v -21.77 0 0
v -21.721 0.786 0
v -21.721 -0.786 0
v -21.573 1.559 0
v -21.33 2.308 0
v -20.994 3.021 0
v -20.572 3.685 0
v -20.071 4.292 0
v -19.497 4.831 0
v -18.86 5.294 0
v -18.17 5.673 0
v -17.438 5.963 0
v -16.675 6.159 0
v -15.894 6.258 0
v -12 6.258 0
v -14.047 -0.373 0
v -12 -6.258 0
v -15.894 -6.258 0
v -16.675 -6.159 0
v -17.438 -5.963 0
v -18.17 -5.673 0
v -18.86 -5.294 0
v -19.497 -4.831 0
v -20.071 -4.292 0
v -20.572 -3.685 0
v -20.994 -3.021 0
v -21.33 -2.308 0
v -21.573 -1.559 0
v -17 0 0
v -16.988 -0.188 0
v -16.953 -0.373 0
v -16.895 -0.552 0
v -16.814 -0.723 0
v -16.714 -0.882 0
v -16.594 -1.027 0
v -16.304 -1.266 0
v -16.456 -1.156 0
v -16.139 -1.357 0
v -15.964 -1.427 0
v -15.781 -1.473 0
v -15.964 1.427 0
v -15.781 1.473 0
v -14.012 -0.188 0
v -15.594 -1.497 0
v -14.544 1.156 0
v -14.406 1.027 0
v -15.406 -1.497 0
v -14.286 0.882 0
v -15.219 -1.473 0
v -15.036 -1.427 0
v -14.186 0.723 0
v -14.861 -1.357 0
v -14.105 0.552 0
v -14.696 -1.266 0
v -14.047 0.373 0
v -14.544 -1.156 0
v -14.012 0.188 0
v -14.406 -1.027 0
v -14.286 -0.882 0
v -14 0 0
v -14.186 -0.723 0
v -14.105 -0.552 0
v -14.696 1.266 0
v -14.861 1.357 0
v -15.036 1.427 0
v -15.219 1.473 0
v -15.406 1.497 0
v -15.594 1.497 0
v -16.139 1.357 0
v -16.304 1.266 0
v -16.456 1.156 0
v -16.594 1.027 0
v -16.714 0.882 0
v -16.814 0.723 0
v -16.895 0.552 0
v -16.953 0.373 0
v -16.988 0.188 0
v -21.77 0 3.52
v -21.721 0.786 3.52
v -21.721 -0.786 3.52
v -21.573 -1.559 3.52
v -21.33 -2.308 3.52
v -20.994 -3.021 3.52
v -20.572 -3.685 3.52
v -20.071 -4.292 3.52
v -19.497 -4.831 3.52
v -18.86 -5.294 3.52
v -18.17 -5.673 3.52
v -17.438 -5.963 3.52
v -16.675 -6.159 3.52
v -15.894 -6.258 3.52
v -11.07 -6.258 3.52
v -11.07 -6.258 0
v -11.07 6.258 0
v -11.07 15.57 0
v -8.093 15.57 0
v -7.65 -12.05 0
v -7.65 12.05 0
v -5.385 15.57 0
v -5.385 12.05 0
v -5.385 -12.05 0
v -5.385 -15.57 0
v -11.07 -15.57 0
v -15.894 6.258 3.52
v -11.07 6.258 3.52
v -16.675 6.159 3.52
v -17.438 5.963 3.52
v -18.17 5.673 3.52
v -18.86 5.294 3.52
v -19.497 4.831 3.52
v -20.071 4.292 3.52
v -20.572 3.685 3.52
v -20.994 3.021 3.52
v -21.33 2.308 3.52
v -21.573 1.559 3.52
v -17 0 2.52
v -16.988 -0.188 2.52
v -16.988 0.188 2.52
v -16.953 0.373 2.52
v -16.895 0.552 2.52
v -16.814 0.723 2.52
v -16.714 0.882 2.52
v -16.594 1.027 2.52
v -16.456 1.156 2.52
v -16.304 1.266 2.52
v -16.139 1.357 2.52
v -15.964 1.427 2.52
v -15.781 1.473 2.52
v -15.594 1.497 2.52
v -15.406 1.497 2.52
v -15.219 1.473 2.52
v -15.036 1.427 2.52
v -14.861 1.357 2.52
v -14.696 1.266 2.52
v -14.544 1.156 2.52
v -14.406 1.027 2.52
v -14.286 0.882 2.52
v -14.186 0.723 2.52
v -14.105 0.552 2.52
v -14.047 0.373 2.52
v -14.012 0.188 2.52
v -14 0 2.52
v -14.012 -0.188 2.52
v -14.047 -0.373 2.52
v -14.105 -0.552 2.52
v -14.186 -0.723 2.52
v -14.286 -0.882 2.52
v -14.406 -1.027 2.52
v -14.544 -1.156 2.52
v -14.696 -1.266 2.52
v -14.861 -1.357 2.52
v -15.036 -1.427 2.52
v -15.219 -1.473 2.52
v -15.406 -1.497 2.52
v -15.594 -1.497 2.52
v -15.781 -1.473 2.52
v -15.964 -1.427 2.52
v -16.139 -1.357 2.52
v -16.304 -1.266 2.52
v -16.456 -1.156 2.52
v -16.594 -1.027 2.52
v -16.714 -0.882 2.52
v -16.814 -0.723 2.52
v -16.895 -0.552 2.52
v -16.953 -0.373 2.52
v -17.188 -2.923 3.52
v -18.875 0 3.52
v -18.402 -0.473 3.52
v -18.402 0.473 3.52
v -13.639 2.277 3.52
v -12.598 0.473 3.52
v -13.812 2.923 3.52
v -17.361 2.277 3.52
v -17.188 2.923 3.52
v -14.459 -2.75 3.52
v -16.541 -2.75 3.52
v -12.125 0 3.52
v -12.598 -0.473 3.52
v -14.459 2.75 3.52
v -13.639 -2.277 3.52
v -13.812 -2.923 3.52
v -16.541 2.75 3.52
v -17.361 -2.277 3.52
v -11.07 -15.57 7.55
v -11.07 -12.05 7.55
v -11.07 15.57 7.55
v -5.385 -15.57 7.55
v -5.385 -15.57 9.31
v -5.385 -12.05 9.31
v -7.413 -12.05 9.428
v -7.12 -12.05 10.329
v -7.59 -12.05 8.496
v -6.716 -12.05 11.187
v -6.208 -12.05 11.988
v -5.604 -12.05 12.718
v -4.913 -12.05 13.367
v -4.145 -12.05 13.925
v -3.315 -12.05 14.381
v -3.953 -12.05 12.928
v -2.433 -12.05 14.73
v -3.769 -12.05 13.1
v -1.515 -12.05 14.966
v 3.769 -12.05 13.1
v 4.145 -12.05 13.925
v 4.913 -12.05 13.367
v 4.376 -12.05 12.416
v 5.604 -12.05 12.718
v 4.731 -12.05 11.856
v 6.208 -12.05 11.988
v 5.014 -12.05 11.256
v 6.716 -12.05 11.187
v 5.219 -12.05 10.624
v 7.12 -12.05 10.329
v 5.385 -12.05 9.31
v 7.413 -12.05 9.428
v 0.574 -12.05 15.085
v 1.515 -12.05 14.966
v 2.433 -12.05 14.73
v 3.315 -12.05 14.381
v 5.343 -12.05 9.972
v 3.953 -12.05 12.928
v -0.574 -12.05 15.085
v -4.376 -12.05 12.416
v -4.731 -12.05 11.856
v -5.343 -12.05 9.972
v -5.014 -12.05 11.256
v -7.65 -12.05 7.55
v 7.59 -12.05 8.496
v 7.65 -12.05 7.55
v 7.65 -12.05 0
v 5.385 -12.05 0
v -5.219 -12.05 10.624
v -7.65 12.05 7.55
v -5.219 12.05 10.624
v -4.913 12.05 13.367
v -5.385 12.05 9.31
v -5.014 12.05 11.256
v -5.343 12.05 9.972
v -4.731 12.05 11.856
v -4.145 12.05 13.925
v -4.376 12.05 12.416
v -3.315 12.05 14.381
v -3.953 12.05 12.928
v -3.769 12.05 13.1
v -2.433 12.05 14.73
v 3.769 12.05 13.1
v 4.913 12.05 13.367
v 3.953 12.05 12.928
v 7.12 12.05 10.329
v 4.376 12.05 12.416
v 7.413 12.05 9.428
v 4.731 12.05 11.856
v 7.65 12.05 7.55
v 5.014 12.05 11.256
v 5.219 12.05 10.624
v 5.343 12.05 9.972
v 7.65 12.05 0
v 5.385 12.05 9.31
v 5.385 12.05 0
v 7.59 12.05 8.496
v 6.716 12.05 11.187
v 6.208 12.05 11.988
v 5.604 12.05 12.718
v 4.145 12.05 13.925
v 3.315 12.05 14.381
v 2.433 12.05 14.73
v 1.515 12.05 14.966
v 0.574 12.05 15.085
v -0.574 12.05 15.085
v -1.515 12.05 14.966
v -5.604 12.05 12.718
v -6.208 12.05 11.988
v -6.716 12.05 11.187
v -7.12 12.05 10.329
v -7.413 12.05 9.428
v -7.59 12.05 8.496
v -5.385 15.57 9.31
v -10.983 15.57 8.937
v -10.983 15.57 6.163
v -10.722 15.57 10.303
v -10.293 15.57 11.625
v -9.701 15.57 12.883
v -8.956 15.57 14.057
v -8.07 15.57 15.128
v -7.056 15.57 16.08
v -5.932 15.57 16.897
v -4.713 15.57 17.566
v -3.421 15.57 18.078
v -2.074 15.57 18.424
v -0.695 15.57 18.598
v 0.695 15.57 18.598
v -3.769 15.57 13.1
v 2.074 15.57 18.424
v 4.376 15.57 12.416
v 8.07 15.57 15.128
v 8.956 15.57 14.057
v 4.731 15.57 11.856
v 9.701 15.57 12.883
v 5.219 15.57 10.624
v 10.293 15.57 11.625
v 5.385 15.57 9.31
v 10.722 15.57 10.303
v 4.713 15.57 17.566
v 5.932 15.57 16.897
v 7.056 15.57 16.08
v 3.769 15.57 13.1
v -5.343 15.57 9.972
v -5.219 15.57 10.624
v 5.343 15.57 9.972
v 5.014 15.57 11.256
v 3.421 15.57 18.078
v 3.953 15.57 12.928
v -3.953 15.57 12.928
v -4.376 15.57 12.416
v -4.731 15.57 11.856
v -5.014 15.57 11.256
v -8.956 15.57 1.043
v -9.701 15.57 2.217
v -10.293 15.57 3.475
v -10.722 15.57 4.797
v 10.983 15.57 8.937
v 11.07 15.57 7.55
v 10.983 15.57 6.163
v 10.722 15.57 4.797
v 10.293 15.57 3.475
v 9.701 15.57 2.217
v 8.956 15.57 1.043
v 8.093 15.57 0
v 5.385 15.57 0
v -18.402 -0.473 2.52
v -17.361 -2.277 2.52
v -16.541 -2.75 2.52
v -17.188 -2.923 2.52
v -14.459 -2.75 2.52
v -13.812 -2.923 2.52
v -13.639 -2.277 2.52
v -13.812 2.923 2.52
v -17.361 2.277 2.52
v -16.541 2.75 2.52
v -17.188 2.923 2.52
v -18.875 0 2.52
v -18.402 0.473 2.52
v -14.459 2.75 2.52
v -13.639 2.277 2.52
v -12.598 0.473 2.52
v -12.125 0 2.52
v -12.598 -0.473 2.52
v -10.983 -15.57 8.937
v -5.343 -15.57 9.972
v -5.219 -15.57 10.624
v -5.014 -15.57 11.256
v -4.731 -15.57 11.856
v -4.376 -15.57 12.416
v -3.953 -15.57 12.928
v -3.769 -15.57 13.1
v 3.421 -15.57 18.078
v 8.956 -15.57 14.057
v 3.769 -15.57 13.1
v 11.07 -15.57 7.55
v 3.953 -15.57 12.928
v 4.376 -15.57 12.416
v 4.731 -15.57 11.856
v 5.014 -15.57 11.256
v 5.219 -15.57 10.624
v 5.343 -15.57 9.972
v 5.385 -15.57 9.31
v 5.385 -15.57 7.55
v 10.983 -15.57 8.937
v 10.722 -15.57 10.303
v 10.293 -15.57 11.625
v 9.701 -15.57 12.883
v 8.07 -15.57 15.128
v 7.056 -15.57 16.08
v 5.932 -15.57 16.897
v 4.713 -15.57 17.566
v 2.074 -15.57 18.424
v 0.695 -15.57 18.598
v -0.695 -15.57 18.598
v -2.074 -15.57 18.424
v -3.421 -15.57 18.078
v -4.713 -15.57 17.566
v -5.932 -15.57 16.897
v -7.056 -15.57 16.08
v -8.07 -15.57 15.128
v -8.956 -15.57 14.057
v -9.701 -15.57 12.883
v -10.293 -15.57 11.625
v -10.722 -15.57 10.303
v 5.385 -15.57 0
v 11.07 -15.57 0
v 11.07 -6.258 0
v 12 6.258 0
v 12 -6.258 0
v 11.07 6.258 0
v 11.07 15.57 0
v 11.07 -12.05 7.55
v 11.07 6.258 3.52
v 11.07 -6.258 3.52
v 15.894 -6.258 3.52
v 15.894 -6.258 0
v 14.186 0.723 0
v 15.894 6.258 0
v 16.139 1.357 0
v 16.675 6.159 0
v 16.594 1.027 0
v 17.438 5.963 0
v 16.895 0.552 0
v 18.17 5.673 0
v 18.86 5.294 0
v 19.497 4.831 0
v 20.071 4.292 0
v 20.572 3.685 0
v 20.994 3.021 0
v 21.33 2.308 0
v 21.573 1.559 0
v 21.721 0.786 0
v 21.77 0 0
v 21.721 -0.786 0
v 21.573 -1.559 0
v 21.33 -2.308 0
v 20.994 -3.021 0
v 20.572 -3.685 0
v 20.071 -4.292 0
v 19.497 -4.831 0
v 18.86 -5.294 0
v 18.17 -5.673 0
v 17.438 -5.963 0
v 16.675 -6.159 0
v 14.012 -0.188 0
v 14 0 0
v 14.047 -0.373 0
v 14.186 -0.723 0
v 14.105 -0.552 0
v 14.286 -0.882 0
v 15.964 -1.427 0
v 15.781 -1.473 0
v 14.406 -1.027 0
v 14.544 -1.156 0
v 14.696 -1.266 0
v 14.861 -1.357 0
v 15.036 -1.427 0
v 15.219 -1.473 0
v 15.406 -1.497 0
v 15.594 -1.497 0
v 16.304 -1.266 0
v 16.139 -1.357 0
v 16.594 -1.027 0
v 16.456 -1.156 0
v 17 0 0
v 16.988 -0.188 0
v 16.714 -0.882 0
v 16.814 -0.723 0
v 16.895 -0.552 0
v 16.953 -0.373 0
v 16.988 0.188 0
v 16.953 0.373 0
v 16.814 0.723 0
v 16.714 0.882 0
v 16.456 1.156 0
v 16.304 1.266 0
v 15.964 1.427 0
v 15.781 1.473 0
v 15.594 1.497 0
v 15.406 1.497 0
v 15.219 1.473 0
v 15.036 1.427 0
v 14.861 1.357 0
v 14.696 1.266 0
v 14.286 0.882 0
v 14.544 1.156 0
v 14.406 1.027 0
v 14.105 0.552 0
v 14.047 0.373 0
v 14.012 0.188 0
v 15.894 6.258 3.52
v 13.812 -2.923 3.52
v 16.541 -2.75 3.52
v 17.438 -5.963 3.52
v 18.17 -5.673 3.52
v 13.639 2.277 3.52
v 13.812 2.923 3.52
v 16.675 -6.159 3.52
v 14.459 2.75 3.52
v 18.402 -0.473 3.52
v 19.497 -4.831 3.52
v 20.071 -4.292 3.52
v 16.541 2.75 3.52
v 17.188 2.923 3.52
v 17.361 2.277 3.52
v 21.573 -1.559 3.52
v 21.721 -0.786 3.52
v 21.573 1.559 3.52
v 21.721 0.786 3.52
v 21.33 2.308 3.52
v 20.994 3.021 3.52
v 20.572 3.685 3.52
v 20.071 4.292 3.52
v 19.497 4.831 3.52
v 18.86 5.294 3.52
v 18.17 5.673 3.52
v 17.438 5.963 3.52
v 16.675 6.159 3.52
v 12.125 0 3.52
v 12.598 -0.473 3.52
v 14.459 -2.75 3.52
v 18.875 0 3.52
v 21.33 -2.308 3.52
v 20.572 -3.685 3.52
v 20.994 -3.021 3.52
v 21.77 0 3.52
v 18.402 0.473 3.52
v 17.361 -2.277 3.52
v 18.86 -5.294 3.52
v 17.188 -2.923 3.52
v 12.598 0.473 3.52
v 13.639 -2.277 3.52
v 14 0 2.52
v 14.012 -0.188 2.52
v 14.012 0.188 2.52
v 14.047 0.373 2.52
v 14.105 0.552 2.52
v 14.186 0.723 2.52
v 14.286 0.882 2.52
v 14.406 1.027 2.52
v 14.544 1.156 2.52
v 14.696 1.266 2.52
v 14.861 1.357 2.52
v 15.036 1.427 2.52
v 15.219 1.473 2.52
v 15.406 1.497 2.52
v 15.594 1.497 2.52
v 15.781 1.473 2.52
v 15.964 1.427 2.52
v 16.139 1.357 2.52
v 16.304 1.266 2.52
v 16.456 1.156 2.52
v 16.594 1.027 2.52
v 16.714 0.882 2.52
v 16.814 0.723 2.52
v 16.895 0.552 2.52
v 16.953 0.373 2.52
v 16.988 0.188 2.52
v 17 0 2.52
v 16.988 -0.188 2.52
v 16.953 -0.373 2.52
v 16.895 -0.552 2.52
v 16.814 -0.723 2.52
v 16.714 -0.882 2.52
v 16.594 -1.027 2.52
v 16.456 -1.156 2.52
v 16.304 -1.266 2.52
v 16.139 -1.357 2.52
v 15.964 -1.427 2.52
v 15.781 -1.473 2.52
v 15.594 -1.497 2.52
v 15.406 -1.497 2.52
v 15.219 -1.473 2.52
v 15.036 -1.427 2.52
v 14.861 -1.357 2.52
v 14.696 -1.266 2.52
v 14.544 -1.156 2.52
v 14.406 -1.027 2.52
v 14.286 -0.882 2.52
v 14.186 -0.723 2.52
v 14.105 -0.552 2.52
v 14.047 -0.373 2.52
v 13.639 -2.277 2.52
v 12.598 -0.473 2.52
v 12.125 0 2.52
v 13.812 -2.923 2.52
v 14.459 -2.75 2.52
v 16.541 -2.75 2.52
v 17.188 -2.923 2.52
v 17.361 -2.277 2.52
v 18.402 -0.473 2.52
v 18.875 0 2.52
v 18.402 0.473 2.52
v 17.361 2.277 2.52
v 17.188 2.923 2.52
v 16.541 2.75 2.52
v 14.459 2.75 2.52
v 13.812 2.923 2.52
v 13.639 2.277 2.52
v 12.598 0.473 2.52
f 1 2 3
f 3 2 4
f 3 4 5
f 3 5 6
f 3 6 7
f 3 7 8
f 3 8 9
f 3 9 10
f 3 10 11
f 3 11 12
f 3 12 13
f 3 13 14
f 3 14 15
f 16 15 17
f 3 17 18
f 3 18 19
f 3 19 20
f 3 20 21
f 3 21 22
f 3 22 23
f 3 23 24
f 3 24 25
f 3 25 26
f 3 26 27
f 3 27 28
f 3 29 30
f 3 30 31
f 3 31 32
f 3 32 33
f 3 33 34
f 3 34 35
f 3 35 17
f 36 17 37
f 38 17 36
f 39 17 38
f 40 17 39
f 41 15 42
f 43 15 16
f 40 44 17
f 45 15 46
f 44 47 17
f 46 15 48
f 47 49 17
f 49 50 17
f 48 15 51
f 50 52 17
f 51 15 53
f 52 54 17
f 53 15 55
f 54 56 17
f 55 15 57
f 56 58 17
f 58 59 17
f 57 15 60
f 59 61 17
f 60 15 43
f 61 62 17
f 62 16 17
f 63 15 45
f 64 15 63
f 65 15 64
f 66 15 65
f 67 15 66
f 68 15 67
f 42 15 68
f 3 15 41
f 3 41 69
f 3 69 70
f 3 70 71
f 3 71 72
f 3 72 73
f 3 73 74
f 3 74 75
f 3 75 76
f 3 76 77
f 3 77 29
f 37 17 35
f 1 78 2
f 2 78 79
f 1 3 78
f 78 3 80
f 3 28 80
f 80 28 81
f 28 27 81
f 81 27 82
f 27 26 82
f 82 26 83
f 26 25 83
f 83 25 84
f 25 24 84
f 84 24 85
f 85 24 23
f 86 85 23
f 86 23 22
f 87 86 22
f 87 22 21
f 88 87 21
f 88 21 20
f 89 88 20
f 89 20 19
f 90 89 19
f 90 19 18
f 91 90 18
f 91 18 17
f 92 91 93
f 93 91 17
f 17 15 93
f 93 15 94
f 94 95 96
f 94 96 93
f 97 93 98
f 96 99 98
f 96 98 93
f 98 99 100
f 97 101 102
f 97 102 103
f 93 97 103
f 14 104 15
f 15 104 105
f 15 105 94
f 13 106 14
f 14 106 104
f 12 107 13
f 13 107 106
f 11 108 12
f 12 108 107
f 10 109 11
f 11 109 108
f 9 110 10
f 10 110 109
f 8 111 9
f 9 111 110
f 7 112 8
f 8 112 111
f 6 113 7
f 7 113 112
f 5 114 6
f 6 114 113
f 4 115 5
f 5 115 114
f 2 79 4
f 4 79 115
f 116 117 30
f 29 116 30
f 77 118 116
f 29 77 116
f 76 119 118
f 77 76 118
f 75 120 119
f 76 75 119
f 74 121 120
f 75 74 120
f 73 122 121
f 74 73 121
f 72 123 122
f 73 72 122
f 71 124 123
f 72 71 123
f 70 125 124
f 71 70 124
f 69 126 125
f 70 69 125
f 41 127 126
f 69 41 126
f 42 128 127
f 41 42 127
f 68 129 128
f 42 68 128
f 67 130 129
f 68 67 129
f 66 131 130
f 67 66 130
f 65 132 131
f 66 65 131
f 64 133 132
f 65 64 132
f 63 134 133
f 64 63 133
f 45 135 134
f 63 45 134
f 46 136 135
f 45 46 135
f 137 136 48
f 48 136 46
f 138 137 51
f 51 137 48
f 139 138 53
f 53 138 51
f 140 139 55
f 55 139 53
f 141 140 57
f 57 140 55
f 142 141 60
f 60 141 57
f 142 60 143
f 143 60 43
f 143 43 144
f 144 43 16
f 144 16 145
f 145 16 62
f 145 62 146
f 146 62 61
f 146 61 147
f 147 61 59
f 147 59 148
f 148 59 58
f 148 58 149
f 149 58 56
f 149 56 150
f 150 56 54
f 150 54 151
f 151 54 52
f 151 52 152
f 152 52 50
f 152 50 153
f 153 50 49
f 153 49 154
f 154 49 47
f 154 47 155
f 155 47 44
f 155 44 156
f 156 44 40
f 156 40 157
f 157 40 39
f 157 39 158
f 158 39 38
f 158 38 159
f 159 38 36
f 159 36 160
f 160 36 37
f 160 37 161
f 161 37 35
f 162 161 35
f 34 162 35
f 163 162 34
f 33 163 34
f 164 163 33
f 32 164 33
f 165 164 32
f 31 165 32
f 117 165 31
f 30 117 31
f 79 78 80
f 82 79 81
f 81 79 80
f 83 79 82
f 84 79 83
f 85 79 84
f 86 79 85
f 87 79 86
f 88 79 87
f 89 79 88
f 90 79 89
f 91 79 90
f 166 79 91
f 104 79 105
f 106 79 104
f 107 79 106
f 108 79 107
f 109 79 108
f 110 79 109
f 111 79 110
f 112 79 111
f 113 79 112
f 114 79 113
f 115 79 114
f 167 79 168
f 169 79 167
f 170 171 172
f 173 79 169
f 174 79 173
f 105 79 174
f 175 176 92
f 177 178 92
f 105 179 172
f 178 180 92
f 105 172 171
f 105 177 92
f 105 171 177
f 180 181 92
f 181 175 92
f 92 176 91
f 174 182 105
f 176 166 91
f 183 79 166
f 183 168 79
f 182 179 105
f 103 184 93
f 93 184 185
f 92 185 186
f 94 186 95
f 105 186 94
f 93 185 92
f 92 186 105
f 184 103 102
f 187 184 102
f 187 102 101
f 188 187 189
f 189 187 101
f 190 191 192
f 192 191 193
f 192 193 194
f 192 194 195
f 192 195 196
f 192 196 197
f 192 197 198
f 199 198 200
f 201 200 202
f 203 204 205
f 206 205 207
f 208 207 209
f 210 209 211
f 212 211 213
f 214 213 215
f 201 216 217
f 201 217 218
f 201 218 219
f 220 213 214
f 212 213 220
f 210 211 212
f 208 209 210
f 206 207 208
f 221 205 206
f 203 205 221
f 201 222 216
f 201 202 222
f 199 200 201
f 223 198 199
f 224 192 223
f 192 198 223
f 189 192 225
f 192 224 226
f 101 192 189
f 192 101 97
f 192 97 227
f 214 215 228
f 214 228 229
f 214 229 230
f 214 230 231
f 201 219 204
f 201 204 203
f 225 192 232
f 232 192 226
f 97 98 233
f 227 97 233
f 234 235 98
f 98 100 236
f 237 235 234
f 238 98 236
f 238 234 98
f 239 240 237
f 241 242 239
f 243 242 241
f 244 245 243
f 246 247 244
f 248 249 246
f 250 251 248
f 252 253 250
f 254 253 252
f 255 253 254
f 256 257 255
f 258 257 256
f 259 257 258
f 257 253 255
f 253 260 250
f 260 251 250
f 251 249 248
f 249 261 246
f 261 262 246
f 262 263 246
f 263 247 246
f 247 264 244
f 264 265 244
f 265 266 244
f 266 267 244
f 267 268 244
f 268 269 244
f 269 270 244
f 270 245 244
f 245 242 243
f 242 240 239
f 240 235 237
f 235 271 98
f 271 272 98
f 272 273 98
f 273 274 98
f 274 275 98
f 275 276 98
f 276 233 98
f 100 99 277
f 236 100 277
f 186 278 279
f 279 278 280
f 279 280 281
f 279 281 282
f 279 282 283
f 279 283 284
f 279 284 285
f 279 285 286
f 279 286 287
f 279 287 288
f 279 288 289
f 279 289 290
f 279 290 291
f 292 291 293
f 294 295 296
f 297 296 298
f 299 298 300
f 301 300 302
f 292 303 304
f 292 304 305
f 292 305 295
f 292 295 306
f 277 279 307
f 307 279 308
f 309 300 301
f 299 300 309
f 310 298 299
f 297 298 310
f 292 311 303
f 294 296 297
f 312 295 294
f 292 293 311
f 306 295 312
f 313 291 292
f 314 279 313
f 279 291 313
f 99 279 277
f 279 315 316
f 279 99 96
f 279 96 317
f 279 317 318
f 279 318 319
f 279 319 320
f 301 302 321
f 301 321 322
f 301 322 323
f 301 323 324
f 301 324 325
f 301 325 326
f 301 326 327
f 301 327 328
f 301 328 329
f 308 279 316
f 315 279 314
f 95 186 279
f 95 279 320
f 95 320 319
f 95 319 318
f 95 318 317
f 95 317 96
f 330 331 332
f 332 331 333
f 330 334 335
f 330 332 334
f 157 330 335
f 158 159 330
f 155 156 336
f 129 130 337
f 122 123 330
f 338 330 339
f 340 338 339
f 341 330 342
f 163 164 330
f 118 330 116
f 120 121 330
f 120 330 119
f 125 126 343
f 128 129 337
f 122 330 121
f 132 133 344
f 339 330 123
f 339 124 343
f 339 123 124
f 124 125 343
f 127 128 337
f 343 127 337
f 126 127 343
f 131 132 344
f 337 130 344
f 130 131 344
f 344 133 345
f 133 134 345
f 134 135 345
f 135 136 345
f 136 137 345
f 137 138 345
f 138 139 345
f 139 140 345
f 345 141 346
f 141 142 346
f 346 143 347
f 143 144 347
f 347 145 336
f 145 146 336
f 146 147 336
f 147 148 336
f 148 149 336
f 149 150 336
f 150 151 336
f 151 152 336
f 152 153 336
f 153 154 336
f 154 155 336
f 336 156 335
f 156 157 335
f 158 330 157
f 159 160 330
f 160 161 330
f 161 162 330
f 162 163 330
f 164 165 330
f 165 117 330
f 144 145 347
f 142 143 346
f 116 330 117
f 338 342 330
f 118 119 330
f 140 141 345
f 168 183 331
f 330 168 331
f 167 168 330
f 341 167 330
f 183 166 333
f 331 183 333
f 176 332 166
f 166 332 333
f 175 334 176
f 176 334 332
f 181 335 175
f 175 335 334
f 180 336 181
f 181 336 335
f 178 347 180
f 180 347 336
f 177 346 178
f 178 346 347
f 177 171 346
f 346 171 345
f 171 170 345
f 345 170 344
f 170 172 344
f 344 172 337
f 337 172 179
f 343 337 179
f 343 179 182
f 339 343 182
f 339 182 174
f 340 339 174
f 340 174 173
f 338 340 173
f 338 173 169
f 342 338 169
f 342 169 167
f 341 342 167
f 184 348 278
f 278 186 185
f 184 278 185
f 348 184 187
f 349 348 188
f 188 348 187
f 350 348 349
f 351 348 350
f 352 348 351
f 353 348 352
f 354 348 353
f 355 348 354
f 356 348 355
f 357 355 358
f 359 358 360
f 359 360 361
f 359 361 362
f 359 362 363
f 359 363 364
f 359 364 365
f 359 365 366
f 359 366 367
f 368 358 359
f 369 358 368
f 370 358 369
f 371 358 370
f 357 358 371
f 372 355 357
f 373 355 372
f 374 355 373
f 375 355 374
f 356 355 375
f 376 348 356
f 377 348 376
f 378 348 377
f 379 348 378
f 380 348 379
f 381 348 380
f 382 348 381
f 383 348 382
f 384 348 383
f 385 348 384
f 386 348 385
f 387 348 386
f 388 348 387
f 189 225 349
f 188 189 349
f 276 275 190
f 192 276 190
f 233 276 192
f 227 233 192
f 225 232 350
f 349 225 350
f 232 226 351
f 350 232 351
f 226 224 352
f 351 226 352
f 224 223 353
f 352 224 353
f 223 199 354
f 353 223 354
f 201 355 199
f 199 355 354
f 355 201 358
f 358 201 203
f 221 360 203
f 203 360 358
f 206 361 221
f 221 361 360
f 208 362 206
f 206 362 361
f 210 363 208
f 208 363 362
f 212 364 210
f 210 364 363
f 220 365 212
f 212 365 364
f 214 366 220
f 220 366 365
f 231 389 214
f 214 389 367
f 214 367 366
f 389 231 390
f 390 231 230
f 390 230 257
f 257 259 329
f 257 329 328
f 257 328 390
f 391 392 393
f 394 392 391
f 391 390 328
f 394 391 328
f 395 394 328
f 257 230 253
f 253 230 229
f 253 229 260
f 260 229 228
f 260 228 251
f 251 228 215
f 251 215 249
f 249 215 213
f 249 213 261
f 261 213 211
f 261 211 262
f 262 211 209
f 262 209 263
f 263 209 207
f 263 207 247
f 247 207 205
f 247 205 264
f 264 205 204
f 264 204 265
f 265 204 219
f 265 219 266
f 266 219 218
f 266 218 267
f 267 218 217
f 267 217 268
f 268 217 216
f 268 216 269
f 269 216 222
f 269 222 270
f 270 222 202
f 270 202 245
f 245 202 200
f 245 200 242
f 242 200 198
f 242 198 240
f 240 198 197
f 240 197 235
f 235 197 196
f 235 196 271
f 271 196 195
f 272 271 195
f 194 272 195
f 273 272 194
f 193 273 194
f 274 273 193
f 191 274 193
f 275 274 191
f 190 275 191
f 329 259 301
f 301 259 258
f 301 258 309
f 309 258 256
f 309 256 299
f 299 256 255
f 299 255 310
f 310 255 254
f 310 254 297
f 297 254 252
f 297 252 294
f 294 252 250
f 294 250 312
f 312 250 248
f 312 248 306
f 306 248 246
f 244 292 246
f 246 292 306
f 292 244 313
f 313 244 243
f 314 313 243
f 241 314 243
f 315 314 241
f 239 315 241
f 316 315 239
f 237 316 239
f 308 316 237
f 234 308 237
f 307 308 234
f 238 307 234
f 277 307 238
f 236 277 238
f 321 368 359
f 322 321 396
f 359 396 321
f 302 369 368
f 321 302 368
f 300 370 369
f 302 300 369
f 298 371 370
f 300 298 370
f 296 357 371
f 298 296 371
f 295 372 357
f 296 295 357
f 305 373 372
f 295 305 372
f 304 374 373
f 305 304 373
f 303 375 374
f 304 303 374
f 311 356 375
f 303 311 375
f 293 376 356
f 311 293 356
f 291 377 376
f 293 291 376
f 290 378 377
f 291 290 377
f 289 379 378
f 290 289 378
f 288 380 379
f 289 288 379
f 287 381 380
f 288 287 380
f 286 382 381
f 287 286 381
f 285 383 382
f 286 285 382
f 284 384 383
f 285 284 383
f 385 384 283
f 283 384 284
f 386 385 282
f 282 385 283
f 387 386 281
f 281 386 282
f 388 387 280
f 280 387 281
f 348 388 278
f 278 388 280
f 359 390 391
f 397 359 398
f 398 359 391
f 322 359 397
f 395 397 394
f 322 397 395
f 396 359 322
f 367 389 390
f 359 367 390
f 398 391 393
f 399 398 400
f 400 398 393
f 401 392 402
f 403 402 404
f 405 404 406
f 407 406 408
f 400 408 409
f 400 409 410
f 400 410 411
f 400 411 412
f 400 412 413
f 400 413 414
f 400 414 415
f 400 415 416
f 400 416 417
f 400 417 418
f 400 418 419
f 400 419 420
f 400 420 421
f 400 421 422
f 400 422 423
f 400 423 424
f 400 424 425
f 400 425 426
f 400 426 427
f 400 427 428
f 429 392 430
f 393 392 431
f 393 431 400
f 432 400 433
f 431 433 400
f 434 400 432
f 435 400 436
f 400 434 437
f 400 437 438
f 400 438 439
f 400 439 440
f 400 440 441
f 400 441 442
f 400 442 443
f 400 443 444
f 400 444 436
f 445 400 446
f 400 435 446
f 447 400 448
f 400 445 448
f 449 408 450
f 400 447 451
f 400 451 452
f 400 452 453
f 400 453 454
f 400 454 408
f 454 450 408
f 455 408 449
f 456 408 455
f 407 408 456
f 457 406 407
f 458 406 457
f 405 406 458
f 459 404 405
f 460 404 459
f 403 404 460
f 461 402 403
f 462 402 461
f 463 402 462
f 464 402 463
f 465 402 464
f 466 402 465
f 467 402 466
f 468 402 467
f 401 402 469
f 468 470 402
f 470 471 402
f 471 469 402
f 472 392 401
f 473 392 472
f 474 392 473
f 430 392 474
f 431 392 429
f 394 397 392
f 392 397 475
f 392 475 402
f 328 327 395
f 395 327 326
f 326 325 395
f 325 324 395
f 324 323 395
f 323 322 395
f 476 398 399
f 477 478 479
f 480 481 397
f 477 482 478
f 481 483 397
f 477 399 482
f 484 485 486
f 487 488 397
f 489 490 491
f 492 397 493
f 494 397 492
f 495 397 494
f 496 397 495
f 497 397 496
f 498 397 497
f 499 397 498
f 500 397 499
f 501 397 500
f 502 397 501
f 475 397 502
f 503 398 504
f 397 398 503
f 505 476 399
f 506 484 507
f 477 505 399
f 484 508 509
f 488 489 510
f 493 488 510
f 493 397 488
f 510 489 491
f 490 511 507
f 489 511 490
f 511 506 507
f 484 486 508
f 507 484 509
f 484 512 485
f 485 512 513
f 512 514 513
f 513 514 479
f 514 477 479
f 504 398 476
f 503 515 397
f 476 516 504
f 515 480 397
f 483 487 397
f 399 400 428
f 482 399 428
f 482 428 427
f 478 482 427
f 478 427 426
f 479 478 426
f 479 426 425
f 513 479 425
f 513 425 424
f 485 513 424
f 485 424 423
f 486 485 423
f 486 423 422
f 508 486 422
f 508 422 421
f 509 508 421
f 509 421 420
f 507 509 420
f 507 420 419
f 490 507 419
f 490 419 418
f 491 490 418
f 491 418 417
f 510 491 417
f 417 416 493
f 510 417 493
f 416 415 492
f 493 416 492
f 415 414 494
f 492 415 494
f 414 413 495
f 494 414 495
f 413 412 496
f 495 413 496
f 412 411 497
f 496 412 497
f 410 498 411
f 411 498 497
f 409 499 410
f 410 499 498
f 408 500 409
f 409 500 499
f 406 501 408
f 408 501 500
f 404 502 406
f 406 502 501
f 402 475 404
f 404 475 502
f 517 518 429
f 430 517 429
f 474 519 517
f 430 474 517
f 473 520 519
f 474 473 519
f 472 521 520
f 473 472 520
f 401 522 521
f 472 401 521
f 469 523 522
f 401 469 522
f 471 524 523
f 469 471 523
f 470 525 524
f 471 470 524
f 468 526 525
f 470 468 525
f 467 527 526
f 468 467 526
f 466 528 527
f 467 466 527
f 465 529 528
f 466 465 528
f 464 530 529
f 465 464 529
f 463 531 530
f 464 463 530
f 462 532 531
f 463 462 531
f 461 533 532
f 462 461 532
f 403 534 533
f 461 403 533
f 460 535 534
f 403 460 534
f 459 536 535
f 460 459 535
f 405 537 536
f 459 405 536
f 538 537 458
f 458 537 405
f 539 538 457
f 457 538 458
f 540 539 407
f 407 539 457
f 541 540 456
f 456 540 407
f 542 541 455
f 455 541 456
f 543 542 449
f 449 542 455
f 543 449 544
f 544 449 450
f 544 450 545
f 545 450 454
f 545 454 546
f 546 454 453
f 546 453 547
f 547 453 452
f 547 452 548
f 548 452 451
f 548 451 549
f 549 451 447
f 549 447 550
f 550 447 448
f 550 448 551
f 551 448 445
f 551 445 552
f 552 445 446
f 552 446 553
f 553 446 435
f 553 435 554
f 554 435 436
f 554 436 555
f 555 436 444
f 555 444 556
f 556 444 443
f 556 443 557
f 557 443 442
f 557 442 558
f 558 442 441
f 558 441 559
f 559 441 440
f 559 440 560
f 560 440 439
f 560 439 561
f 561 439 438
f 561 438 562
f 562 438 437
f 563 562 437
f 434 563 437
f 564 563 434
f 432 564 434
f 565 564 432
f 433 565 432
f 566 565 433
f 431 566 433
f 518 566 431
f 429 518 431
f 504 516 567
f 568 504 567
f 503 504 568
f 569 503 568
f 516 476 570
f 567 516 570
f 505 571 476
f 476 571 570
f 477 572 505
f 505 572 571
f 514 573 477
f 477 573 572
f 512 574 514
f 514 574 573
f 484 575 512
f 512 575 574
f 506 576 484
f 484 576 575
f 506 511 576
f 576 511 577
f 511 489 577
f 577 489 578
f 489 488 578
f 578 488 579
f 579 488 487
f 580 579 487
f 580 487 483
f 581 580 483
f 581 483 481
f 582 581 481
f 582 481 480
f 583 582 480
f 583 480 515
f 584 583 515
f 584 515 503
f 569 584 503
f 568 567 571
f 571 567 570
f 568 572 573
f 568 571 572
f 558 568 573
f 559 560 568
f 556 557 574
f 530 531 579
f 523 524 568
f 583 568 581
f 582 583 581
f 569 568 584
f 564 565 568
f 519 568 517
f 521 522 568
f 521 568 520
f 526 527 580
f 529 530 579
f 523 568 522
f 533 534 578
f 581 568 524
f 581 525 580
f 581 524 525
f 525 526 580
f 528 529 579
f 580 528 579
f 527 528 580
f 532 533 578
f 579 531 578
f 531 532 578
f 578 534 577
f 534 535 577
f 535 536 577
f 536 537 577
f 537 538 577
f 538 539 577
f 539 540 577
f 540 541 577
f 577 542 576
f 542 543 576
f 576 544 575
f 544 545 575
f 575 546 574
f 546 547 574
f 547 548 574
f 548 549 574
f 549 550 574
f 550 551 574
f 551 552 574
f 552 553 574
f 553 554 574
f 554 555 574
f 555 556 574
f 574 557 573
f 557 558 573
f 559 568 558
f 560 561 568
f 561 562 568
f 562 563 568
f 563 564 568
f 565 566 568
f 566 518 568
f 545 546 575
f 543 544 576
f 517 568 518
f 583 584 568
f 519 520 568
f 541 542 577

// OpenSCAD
/*
 * Y Bed LM8UU holder
 *
 * (C) Michel Pollet <buserror@gmail.com>
 *
 ************************LICENSING TERMS***************************
 * This part is not for commercial distribution without a commercial 
 * license acquired from the author. Distribution on a small scale 
 * basis (< 25 units) in the Reprap spirit is free of charge on the
 * basis of mentioning the Author with the bill of material, any 
 * wider distribution requires my explicit, written permission.
 ******************************************************************
 *
 * This was designed to allow the bearing to be right against the bed
 * to save height, and also to leave the bearing a bit of wigling
 * room to let it find it's own parallelism.
 *
 * print should be easy as long as you can print good bridges, I truncated
 * the 'lip' if the holder to have a bridge before the overhangs become
 * too big, after that it's fairly straighforward
 */

$fn = 50;
extrusionSize = 0.44;	// for 0.20mm layer

demo = 1;
skirt = demo == 0 ? 1 : 0;

WallW = 8 * extrusionSize;

BearingHeightTolerance = 0.0;
BearingWiggleTolerance = 0.1;
BearingSize = [24.1, 15.1];	// length, external width
BearingPos = [0, 0, (BearingSize[1]/2) + BearingHeightTolerance];

BearingBaseSize = [ BearingSize[1] + (2 * WallW), 
		BearingSize[0] + (2*WallW),
		BearingPos[2]];
BearingBasePos = [-BearingBaseSize[0]/2, -WallW, 0];

HoleDistance = 15.5*2; // from 'y-lm8uu-holder.scad'

m3_diameter = 3;
m3_nut_diameter = 5.5;
m3_nut_height = 2.5;

if (skirt == 1) {
	linear_extrude(height=0.20) difference() {
		scale([1.1,1.1,0])
			projection(cut = true) hull() holder();
		scale([0.99,0.99,1.01])
			projection(cut = true) hull() holder();
	}
}

holder();

module holder() translate([0,-BearingSize[0]/2,0]) difference () {
	outside();
	inside();
}

module outside() {
	translate(BearingPos)
		rotate([-90,0,0]) {
			if (demo == 1)
		%		cylinder(r = (BearingSize[1] / 2), 
						h = BearingSize[0]);
			translate([0,0,-WallW])
				cylinder(r = (BearingSize[1] / 2) + WallW, 
						h = BearingSize[0] + (2*WallW));
		}
	translate(BearingBasePos)
		cube(BearingBaseSize);

	hull() for (x = [0:1]) {
		translate([(x?-1:1) * (HoleDistance/2), -WallW+(BearingBaseSize[1] / 2), 0])
			cylinder(r = (m3_nut_diameter/2) + WallW, h = WallW);
	}
}

module inside() {
	translate(BearingPos)
		rotate([-90,0,0]) render() {
			hull() for (z = [0, 1]) for (x = [0:1]) 
			translate([(x ? 1:-1) * BearingWiggleTolerance, z*30, 0])
				cylinder(r = (BearingSize[1] / 2), 
						h = BearingSize[0]);
			
			difference() {
				hull() for (z = [0, 1]) for (x = [0:1]) 
				translate([(x ? 1:-1) * BearingWiggleTolerance, -(WallW*0.5)+z*30, 0])
				translate([0,0,-WallW-1])
					cylinder(r = (BearingSize[1] / 2) * 0.7, 
							h = BearingSize[0] + (3*WallW));	
				translate([-(BearingSize[1] / 2), -(BearingSize[1] / 2)-2, -WallW-2])		
					cube([15, 4, BearingSize[0] + (4*WallW)]);
			}
		}
	for (x = [0:1])
	translate([(x?-1:1) * (HoleDistance/2), -WallW+(BearingBaseSize[1] / 2), 0]) {
		cylinder(r = m3_diameter / 2, h = WallW + 2);
		translate([0,0,WallW-1])
			nut(d = m3_nut_diameter, h = m3_nut_height);
	}
	translate([-12,-10, -5])
		cube([24,40,5]);
}

module nut(d,h,horizontal=true){
cornerdiameter =  (d / 2) / cos (180 / 6);
cylinder(h = h, r = cornerdiameter, $fn = 6);
if(horizontal){
for(i = [1:6]){
	rotate([0,0,60*i]) translate([-cornerdiameter-0.2,0,0]) rotate([0,0,-45]) cube(size = [2,2,h]);
}}
}
